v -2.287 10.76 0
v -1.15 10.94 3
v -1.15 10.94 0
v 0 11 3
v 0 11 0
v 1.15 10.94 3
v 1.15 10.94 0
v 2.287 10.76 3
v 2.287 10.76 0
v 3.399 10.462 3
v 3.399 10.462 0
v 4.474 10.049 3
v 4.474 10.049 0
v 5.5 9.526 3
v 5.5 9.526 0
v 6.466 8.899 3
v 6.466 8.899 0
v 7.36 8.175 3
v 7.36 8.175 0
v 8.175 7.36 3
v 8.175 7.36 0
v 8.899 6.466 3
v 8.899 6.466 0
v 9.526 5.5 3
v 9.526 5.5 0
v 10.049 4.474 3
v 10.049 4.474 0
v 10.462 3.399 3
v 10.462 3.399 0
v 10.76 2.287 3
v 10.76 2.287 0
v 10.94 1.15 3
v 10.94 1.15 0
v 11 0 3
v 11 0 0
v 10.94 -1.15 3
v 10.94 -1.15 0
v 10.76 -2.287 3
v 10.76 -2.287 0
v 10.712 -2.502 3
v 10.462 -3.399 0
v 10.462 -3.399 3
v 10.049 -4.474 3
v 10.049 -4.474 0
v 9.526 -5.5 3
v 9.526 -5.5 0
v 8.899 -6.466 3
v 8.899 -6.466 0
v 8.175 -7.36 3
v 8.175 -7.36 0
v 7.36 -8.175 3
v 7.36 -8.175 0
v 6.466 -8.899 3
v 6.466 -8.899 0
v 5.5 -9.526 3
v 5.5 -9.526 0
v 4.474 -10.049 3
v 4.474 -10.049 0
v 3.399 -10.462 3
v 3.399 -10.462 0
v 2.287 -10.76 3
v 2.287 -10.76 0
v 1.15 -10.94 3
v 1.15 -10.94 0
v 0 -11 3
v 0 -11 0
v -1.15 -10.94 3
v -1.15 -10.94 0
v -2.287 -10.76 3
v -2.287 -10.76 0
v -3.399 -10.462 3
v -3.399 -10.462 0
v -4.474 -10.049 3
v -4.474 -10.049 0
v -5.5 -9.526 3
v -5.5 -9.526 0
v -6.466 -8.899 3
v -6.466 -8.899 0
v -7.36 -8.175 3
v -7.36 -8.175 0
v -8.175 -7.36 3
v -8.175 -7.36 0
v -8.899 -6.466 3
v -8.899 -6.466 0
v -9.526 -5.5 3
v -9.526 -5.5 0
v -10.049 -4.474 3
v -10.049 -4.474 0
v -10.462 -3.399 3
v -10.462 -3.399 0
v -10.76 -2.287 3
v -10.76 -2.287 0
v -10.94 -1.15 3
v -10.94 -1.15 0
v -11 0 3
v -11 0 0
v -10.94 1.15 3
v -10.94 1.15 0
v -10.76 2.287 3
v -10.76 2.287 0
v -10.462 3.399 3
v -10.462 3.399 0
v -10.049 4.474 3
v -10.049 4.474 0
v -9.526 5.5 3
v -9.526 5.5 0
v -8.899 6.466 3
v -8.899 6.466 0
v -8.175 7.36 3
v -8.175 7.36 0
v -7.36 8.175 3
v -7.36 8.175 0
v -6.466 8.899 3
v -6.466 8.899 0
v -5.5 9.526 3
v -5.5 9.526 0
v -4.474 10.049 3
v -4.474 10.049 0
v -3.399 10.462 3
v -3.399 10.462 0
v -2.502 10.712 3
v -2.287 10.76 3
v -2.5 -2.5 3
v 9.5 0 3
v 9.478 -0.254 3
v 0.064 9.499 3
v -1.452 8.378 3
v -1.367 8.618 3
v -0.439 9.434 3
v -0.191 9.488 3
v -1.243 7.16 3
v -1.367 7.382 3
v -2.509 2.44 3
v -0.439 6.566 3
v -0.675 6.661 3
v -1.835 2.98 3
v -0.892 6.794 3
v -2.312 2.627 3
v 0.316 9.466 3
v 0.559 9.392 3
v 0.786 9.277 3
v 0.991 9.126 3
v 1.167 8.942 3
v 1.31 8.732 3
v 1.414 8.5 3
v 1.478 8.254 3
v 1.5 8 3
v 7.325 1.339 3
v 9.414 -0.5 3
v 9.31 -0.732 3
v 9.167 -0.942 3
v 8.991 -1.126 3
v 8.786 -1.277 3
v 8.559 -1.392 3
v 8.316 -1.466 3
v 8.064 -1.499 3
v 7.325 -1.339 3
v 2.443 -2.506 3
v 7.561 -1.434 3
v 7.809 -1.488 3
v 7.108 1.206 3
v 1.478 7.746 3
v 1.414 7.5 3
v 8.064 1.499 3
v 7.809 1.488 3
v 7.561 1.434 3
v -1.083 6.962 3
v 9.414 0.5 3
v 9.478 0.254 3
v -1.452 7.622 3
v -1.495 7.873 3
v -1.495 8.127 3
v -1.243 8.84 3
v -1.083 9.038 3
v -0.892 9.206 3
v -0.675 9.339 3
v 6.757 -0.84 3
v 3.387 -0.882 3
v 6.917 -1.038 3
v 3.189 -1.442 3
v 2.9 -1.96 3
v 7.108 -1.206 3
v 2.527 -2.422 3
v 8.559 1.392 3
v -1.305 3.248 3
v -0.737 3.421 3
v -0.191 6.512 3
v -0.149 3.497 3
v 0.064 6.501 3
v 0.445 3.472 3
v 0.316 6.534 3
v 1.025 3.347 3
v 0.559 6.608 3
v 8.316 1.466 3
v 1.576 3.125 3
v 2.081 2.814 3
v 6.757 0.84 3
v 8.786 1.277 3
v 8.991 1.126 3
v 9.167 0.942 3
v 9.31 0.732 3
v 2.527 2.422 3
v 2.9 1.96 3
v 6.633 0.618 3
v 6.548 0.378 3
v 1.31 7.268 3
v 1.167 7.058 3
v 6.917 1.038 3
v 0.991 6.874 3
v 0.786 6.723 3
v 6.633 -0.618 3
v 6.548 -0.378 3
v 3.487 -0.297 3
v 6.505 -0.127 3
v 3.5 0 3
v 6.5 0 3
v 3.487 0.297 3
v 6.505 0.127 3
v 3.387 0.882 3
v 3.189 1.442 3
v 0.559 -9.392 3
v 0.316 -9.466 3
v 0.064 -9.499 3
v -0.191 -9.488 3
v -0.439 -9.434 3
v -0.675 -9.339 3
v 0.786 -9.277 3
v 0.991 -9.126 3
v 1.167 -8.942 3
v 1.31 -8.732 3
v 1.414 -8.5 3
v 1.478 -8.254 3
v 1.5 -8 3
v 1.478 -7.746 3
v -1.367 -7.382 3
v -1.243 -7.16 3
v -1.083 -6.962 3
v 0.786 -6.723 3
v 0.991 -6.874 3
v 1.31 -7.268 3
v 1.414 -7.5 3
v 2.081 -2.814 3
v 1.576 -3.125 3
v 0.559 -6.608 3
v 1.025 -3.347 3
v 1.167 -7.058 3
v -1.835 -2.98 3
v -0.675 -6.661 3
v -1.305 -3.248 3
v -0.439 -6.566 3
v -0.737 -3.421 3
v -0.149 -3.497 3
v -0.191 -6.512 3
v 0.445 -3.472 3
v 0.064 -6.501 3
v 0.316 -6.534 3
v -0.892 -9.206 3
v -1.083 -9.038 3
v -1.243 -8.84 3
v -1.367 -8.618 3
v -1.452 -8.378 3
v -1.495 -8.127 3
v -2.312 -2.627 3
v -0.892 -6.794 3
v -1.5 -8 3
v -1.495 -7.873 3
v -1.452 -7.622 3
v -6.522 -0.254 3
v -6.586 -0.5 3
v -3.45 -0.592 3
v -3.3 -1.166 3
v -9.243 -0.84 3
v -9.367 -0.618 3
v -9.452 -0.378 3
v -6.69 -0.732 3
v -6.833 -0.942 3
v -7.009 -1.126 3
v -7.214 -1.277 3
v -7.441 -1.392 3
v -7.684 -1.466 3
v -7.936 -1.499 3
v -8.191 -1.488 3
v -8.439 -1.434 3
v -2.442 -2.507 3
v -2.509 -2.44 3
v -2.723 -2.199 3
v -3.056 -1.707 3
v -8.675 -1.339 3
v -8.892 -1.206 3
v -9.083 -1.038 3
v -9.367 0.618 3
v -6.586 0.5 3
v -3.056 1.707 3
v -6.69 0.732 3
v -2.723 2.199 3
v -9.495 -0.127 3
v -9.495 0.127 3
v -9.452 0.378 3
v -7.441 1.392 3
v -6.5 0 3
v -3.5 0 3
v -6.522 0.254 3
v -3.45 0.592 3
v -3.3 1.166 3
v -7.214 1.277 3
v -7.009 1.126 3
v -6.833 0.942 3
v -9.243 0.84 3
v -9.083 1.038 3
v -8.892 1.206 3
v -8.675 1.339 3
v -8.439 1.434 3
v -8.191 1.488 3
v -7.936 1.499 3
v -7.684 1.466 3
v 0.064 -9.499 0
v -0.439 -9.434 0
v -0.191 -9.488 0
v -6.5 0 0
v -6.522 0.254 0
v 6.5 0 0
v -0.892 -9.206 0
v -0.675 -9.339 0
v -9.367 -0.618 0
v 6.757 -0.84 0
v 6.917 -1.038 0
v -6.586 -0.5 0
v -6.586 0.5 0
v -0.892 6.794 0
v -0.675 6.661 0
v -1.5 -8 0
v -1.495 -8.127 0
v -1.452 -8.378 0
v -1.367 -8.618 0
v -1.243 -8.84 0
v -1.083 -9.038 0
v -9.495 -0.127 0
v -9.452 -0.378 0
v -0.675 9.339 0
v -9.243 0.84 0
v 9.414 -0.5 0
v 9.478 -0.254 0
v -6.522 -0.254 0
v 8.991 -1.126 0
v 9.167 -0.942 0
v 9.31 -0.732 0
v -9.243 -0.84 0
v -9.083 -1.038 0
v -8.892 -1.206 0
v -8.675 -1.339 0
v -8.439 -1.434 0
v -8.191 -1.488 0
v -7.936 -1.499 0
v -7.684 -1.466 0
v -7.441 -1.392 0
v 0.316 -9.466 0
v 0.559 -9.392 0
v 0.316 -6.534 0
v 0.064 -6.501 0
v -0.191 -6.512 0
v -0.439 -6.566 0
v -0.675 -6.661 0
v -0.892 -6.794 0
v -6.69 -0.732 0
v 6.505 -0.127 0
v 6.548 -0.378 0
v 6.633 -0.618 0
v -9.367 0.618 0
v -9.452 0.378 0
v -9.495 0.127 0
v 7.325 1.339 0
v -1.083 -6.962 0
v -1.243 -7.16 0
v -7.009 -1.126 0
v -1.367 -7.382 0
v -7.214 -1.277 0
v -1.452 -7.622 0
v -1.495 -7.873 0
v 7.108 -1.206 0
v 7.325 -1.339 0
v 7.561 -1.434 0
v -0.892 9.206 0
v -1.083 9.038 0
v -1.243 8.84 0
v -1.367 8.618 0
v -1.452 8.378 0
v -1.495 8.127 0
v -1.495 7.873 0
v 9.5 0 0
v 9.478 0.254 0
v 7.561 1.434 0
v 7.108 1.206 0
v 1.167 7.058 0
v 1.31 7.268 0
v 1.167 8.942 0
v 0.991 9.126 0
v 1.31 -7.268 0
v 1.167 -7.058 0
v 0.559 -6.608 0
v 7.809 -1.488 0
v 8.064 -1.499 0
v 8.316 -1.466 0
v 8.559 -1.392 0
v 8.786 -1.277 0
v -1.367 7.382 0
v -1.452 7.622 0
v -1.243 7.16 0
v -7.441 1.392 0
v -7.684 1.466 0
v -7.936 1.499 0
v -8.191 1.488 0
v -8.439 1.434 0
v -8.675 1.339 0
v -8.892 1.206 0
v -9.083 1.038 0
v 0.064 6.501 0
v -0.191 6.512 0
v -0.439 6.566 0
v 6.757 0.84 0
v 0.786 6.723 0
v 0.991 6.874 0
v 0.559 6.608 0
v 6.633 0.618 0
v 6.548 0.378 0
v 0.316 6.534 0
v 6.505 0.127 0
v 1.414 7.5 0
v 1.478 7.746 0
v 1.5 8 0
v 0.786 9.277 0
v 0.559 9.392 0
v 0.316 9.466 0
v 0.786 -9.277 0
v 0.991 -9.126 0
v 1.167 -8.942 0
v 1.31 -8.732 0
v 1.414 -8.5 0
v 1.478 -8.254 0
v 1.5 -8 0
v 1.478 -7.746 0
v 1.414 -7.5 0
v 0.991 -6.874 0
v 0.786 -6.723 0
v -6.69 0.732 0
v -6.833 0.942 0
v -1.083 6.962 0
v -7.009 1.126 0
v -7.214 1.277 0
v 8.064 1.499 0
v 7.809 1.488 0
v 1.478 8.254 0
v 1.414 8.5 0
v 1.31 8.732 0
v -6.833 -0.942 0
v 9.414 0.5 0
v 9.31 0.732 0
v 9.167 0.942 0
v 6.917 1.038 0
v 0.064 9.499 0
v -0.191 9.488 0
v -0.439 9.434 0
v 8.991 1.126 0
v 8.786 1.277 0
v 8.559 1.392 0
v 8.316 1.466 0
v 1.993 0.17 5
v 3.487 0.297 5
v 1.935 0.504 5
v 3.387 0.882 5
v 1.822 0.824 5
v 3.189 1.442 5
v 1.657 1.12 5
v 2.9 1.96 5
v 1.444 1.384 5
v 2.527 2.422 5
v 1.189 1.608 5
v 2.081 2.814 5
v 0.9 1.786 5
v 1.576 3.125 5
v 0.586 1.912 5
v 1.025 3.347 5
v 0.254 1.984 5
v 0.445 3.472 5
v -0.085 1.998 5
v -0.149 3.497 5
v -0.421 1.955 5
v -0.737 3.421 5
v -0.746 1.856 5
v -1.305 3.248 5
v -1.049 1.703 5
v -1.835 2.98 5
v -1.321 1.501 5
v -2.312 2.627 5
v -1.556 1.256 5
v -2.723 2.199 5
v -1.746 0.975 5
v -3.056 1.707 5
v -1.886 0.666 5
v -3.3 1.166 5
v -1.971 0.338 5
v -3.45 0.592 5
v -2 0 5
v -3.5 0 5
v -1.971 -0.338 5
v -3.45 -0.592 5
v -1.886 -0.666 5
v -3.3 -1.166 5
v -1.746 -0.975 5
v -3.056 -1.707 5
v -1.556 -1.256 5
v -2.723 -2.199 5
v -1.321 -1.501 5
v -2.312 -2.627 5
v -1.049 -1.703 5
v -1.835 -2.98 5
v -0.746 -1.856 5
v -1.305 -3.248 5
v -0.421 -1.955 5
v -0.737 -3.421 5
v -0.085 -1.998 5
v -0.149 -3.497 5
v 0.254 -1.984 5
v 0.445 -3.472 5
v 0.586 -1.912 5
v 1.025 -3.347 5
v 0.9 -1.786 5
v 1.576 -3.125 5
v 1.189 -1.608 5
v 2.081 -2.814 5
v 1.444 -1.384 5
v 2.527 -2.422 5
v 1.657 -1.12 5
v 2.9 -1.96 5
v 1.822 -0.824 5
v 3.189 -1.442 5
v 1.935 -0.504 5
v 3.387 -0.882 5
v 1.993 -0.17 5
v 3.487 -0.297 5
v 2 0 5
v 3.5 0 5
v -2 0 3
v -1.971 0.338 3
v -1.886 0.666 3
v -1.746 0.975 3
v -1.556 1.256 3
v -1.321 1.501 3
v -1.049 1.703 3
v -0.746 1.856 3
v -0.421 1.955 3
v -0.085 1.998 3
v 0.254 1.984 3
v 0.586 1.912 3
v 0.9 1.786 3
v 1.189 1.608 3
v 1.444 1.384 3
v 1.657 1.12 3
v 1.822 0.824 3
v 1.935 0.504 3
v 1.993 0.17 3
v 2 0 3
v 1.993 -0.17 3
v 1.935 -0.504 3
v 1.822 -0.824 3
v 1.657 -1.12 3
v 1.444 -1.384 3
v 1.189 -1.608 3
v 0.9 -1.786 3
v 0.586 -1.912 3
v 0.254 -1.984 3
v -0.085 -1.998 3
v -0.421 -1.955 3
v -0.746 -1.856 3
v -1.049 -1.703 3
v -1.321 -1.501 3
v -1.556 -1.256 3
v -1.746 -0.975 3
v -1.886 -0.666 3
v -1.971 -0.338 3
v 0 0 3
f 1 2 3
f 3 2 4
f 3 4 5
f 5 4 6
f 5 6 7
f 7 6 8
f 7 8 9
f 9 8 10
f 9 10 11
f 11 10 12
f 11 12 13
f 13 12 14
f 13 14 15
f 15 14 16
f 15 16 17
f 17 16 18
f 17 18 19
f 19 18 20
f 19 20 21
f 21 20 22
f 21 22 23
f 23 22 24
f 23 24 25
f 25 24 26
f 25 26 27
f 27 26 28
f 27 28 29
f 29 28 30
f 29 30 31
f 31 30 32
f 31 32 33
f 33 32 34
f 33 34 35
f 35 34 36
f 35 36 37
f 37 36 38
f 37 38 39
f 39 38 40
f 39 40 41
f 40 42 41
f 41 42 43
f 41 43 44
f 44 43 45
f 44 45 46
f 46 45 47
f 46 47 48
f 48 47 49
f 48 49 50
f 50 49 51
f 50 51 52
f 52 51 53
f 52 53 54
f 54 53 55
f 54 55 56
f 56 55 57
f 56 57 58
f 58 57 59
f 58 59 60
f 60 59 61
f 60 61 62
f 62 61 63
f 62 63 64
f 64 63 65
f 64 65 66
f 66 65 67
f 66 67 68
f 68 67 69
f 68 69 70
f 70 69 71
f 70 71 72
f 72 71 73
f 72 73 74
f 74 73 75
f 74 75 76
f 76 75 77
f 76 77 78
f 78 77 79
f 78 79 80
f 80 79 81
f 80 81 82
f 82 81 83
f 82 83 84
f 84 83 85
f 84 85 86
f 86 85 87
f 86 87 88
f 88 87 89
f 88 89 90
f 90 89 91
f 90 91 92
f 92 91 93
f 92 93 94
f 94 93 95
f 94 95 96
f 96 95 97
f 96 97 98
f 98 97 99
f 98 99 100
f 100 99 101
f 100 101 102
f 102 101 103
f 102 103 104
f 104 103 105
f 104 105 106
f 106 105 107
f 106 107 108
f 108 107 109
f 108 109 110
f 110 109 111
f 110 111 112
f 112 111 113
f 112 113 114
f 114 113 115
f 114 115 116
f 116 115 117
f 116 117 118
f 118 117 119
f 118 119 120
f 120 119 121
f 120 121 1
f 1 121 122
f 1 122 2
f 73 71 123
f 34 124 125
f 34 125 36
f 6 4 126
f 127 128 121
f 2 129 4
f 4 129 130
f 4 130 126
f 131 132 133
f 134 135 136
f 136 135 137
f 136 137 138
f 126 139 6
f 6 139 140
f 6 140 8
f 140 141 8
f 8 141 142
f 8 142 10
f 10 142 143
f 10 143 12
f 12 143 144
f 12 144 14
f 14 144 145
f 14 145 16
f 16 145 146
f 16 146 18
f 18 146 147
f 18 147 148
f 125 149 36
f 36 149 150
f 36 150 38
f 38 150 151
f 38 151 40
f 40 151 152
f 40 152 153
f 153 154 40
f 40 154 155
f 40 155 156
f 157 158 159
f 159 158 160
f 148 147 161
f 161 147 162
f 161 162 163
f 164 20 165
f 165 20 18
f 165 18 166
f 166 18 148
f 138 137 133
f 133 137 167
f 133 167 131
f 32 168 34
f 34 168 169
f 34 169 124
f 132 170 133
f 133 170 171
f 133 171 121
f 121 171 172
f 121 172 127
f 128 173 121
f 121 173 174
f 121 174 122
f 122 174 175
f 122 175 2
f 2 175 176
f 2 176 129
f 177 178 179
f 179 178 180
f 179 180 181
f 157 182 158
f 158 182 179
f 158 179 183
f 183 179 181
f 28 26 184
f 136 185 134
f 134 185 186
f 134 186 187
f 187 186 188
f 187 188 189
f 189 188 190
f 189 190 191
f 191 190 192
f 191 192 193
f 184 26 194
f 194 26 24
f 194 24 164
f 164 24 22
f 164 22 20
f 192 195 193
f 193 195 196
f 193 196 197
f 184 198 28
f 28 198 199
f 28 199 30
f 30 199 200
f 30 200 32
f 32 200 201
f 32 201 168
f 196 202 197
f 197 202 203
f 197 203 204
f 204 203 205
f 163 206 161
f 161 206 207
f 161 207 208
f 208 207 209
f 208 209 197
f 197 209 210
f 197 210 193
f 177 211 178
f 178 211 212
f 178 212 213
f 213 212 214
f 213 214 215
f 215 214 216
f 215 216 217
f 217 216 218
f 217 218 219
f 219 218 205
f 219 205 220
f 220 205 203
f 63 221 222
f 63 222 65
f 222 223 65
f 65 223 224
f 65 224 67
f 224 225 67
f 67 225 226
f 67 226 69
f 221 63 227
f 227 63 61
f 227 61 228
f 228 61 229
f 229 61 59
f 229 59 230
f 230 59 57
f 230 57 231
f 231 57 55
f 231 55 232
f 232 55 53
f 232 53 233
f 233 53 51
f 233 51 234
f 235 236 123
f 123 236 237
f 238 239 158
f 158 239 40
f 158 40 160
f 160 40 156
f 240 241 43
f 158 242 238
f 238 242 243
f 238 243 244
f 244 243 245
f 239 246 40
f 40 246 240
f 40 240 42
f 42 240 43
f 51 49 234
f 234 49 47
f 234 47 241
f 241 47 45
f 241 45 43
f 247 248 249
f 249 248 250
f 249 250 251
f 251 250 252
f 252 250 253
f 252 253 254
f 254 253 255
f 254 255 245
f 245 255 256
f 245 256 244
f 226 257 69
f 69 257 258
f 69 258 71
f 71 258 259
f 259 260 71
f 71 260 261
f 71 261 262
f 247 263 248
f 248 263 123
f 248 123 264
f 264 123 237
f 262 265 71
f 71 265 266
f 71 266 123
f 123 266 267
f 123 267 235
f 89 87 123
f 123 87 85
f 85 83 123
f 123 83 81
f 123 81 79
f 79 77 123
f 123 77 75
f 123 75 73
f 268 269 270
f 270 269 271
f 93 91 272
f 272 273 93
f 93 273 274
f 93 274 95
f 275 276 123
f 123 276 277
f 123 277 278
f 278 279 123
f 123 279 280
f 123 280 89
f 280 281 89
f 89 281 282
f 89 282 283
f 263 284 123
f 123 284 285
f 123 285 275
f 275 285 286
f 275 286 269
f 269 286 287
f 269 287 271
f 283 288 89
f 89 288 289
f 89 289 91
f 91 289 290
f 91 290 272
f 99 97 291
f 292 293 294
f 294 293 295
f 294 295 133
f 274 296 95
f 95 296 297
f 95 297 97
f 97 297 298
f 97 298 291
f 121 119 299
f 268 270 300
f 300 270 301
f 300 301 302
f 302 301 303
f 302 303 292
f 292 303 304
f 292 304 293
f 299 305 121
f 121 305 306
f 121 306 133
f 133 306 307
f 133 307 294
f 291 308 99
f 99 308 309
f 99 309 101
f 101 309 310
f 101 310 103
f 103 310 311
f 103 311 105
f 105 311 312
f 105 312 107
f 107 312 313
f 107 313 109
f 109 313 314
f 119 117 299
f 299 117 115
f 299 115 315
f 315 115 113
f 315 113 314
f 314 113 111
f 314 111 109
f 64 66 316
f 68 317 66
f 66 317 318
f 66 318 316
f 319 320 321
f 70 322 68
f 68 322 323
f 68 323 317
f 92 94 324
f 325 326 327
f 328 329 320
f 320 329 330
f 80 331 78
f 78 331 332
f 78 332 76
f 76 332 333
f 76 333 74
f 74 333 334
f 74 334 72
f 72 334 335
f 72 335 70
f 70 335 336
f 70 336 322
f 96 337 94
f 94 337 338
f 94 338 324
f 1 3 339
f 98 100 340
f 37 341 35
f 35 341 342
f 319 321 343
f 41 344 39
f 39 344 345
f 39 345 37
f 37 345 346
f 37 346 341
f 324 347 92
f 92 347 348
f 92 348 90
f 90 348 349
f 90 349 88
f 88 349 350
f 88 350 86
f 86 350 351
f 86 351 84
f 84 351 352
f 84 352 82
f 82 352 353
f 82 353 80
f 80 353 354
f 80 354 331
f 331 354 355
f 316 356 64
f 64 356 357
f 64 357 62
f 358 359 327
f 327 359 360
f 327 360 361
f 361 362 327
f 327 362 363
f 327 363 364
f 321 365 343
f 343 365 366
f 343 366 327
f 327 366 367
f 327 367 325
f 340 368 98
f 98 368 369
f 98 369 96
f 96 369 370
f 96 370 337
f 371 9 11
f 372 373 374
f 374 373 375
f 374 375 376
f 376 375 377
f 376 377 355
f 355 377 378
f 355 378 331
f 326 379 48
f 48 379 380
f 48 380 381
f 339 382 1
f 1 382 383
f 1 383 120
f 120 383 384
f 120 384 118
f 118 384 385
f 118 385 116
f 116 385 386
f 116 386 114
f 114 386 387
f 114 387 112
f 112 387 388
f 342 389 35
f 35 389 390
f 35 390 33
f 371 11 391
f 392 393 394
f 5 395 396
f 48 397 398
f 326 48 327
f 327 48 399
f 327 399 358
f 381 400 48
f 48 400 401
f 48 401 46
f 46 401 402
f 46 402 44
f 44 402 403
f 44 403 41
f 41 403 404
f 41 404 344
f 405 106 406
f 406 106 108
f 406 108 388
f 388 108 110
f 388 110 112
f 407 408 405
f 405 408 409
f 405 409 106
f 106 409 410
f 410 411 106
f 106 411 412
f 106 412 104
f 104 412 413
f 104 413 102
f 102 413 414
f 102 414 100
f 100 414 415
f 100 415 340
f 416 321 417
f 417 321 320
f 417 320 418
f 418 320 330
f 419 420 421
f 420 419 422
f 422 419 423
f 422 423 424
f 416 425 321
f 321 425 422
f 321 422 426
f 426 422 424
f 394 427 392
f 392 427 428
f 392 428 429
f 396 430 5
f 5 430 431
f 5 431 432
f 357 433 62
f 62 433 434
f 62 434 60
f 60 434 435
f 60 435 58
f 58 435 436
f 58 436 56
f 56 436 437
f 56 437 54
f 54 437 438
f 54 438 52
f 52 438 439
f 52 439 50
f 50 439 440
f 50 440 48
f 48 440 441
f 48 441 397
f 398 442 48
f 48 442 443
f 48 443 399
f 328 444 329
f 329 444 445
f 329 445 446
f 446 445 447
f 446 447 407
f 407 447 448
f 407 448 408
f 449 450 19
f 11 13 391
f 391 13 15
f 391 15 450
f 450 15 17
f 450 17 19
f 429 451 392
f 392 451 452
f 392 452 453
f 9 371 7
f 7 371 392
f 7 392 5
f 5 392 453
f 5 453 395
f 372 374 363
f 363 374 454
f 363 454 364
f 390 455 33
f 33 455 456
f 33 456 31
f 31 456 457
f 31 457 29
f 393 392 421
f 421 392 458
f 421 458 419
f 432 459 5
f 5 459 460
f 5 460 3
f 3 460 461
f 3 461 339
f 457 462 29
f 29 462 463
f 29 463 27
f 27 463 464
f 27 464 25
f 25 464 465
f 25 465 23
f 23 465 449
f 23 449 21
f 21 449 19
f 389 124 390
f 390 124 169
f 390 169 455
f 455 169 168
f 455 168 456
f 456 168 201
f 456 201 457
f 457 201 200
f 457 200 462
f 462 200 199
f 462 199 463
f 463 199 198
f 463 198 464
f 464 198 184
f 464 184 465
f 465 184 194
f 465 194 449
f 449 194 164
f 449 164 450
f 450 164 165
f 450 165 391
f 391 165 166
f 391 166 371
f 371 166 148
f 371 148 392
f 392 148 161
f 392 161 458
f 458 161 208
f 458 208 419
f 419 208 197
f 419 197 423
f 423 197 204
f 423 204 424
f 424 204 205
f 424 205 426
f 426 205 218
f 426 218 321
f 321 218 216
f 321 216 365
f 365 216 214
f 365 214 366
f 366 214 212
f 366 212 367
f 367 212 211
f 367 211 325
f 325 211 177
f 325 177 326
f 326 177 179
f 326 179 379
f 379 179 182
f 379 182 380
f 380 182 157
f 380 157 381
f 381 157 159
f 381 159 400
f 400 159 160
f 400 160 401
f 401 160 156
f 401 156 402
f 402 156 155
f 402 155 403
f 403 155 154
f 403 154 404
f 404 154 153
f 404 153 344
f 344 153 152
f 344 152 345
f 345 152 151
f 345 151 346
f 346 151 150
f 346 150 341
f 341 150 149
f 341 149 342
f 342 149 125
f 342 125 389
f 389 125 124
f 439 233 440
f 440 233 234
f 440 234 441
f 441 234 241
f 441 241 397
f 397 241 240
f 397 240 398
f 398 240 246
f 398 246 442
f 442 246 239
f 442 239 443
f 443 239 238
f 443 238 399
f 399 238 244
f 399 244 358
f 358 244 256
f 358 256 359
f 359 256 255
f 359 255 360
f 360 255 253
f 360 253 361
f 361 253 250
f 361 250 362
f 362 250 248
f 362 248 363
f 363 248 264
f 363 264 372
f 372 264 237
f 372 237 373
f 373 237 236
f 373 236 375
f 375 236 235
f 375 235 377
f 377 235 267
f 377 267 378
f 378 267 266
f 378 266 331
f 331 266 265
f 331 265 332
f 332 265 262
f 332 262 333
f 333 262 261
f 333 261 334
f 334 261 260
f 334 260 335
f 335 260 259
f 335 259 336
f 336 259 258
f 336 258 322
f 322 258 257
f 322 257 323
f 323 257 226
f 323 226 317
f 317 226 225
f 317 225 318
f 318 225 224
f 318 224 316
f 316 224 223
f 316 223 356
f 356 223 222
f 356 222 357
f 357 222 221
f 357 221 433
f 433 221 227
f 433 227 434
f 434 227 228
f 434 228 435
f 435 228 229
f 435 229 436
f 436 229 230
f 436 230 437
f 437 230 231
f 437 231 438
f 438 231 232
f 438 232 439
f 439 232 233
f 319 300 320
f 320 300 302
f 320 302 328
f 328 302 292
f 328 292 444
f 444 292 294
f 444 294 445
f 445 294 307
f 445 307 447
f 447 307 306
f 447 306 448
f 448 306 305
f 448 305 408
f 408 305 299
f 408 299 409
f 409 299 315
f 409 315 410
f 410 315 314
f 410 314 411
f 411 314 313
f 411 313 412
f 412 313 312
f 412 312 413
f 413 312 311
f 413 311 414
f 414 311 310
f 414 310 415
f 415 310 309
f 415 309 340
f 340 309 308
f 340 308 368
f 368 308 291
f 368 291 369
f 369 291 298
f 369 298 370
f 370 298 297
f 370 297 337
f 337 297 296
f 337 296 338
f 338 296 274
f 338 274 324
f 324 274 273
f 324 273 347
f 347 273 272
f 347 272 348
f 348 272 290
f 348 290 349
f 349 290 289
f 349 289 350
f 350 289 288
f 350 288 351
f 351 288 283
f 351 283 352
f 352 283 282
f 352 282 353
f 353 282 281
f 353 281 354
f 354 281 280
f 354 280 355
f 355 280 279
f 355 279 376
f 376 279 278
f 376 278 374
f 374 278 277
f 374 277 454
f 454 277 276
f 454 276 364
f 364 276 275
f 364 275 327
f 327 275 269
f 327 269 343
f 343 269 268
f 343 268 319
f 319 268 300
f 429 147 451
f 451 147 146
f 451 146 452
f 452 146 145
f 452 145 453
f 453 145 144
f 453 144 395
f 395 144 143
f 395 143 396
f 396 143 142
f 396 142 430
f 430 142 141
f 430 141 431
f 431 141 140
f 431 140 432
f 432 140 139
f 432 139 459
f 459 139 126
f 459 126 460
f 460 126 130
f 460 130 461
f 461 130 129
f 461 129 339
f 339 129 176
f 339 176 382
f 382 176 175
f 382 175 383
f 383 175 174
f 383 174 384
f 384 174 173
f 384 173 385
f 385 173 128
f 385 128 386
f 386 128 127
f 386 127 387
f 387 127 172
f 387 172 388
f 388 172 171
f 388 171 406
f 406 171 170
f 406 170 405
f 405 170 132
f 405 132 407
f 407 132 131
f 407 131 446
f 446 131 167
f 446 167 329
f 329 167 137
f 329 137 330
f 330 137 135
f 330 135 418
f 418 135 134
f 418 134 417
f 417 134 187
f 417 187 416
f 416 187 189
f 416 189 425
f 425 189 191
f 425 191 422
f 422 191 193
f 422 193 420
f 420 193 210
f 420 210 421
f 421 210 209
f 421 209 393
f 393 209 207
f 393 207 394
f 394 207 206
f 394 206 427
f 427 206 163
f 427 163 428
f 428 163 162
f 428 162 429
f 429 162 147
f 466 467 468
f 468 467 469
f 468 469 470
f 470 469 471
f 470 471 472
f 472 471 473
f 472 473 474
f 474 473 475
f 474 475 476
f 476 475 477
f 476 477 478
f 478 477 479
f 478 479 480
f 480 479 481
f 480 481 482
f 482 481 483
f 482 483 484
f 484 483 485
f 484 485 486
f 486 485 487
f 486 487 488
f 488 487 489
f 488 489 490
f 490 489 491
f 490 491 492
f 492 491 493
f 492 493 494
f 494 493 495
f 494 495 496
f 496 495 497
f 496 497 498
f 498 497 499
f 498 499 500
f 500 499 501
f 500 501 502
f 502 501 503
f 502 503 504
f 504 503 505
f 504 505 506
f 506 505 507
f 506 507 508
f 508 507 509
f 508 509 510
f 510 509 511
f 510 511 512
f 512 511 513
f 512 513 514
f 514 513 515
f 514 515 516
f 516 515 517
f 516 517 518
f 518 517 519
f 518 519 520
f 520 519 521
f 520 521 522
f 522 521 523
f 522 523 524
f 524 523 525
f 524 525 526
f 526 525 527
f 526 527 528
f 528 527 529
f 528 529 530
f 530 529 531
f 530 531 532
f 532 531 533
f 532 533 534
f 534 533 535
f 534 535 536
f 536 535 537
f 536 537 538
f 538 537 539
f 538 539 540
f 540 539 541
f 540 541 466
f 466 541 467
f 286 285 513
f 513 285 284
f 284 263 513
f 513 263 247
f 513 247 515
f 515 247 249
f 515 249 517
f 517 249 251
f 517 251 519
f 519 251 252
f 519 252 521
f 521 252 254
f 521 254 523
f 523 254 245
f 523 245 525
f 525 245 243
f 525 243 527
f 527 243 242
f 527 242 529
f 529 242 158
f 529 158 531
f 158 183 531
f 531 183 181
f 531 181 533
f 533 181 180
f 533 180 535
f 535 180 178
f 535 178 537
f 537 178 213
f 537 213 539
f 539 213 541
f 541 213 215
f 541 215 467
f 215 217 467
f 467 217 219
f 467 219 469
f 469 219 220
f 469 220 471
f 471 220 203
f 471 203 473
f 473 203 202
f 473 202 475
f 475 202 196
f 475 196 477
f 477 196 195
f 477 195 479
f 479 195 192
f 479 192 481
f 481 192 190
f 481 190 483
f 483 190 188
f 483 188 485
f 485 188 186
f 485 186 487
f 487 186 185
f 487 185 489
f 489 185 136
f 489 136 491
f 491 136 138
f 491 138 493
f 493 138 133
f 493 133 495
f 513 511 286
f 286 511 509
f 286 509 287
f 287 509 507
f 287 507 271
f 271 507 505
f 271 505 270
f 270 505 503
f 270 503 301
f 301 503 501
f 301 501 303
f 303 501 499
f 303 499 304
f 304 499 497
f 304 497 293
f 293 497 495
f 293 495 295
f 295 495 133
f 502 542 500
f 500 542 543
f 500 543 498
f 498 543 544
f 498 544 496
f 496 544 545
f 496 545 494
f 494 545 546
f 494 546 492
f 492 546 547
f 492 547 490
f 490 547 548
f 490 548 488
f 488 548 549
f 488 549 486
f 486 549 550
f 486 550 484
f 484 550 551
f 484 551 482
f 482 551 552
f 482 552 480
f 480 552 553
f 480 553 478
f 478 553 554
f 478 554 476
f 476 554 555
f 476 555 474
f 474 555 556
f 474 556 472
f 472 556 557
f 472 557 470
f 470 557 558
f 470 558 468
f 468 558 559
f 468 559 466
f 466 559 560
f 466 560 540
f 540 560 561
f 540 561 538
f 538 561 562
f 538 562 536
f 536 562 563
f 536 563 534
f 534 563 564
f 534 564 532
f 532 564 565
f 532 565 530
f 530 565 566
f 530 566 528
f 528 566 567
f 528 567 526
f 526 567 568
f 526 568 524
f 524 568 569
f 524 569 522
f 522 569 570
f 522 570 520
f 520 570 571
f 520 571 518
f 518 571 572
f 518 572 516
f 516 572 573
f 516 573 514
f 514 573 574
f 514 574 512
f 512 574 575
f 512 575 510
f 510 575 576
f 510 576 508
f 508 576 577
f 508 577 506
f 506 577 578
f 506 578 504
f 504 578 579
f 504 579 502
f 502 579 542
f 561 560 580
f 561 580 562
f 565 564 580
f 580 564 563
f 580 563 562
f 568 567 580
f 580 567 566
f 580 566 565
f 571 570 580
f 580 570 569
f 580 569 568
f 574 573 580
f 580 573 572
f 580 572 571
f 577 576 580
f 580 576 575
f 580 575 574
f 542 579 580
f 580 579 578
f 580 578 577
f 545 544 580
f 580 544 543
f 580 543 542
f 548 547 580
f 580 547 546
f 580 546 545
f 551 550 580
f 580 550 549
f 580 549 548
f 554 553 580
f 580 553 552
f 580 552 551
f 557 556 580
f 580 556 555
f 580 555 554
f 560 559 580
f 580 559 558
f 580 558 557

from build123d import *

# Parameters (mm, degrees)
SKETCH1_R           = 11
BOSS_EXTRUDE1_DEPTH = 3
SKETCH2_R           = 1.5
CUT_EXTRUDE1_DEPTH  = 3
SKETCH3_R           = 3.5
SKETCH3_R_2         = 2
BOSS_EXTRUDE2_DEPTH = 2


with BuildPart() as part:
    # Sketch1 → Boss-Extrude1 (new body)
    with BuildSketch(Plane.XY):
        Circle(SKETCH1_R)
    extrude(amount=BOSS_EXTRUDE1_DEPTH)

    # Sketch2 → Cut-Extrude1 (cut)
    with BuildSketch(Plane.XY.offset(3)):
        with Locations((0, 8)):
            Circle(SKETCH2_R)
        with Locations((-8, 0)):
            Circle(SKETCH2_R)
        with Locations(Location((0, -8, 0), (0, 0, 180))):
            Circle(SKETCH2_R)
        with Locations(Location((8, 0, 0), (0, 0, 180))):
            Circle(SKETCH2_R)
    extrude(amount=-CUT_EXTRUDE1_DEPTH, mode=Mode.SUBTRACT)

    # Sketch3 → Boss-Extrude2 (add)
    with BuildSketch(Plane.XY.offset(3)):
        Circle(SKETCH3_R)
        Circle(SKETCH3_R_2, mode=Mode.SUBTRACT)
    extrude(amount=BOSS_EXTRUDE2_DEPTH)


solid = part.part
